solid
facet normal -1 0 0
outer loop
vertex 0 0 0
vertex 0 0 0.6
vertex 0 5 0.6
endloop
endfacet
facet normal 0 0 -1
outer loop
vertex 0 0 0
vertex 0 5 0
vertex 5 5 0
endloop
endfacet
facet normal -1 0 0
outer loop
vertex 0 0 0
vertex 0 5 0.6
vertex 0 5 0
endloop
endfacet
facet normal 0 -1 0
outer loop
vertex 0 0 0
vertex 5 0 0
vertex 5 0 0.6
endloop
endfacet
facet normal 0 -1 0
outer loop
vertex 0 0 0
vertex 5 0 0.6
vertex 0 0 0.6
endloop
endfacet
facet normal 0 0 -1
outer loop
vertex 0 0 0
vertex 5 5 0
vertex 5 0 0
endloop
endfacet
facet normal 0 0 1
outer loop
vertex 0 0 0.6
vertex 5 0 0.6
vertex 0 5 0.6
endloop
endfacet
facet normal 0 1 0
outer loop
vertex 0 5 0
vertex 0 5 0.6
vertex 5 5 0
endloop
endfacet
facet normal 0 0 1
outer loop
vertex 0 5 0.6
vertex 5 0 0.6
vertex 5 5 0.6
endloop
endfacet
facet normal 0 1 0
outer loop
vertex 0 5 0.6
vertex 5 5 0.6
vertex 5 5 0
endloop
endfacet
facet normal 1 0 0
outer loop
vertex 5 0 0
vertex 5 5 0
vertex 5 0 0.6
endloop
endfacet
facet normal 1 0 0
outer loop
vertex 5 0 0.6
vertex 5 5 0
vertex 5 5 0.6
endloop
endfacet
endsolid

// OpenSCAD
/* Warning, this is a very basic generator with a lot of approximation 
input data : [UQFN, R5B, 5x5x0.6mm, 40, , A, C04-21371A]
generated by com.zoubworld.electronics.cad.model3d.Basic
Date : Sun Feb 15 10:50:49 CET 2026
*/

//body
color("black")
translate([0,0,0])
cube([5.0,5.0,0.6], center=false);
